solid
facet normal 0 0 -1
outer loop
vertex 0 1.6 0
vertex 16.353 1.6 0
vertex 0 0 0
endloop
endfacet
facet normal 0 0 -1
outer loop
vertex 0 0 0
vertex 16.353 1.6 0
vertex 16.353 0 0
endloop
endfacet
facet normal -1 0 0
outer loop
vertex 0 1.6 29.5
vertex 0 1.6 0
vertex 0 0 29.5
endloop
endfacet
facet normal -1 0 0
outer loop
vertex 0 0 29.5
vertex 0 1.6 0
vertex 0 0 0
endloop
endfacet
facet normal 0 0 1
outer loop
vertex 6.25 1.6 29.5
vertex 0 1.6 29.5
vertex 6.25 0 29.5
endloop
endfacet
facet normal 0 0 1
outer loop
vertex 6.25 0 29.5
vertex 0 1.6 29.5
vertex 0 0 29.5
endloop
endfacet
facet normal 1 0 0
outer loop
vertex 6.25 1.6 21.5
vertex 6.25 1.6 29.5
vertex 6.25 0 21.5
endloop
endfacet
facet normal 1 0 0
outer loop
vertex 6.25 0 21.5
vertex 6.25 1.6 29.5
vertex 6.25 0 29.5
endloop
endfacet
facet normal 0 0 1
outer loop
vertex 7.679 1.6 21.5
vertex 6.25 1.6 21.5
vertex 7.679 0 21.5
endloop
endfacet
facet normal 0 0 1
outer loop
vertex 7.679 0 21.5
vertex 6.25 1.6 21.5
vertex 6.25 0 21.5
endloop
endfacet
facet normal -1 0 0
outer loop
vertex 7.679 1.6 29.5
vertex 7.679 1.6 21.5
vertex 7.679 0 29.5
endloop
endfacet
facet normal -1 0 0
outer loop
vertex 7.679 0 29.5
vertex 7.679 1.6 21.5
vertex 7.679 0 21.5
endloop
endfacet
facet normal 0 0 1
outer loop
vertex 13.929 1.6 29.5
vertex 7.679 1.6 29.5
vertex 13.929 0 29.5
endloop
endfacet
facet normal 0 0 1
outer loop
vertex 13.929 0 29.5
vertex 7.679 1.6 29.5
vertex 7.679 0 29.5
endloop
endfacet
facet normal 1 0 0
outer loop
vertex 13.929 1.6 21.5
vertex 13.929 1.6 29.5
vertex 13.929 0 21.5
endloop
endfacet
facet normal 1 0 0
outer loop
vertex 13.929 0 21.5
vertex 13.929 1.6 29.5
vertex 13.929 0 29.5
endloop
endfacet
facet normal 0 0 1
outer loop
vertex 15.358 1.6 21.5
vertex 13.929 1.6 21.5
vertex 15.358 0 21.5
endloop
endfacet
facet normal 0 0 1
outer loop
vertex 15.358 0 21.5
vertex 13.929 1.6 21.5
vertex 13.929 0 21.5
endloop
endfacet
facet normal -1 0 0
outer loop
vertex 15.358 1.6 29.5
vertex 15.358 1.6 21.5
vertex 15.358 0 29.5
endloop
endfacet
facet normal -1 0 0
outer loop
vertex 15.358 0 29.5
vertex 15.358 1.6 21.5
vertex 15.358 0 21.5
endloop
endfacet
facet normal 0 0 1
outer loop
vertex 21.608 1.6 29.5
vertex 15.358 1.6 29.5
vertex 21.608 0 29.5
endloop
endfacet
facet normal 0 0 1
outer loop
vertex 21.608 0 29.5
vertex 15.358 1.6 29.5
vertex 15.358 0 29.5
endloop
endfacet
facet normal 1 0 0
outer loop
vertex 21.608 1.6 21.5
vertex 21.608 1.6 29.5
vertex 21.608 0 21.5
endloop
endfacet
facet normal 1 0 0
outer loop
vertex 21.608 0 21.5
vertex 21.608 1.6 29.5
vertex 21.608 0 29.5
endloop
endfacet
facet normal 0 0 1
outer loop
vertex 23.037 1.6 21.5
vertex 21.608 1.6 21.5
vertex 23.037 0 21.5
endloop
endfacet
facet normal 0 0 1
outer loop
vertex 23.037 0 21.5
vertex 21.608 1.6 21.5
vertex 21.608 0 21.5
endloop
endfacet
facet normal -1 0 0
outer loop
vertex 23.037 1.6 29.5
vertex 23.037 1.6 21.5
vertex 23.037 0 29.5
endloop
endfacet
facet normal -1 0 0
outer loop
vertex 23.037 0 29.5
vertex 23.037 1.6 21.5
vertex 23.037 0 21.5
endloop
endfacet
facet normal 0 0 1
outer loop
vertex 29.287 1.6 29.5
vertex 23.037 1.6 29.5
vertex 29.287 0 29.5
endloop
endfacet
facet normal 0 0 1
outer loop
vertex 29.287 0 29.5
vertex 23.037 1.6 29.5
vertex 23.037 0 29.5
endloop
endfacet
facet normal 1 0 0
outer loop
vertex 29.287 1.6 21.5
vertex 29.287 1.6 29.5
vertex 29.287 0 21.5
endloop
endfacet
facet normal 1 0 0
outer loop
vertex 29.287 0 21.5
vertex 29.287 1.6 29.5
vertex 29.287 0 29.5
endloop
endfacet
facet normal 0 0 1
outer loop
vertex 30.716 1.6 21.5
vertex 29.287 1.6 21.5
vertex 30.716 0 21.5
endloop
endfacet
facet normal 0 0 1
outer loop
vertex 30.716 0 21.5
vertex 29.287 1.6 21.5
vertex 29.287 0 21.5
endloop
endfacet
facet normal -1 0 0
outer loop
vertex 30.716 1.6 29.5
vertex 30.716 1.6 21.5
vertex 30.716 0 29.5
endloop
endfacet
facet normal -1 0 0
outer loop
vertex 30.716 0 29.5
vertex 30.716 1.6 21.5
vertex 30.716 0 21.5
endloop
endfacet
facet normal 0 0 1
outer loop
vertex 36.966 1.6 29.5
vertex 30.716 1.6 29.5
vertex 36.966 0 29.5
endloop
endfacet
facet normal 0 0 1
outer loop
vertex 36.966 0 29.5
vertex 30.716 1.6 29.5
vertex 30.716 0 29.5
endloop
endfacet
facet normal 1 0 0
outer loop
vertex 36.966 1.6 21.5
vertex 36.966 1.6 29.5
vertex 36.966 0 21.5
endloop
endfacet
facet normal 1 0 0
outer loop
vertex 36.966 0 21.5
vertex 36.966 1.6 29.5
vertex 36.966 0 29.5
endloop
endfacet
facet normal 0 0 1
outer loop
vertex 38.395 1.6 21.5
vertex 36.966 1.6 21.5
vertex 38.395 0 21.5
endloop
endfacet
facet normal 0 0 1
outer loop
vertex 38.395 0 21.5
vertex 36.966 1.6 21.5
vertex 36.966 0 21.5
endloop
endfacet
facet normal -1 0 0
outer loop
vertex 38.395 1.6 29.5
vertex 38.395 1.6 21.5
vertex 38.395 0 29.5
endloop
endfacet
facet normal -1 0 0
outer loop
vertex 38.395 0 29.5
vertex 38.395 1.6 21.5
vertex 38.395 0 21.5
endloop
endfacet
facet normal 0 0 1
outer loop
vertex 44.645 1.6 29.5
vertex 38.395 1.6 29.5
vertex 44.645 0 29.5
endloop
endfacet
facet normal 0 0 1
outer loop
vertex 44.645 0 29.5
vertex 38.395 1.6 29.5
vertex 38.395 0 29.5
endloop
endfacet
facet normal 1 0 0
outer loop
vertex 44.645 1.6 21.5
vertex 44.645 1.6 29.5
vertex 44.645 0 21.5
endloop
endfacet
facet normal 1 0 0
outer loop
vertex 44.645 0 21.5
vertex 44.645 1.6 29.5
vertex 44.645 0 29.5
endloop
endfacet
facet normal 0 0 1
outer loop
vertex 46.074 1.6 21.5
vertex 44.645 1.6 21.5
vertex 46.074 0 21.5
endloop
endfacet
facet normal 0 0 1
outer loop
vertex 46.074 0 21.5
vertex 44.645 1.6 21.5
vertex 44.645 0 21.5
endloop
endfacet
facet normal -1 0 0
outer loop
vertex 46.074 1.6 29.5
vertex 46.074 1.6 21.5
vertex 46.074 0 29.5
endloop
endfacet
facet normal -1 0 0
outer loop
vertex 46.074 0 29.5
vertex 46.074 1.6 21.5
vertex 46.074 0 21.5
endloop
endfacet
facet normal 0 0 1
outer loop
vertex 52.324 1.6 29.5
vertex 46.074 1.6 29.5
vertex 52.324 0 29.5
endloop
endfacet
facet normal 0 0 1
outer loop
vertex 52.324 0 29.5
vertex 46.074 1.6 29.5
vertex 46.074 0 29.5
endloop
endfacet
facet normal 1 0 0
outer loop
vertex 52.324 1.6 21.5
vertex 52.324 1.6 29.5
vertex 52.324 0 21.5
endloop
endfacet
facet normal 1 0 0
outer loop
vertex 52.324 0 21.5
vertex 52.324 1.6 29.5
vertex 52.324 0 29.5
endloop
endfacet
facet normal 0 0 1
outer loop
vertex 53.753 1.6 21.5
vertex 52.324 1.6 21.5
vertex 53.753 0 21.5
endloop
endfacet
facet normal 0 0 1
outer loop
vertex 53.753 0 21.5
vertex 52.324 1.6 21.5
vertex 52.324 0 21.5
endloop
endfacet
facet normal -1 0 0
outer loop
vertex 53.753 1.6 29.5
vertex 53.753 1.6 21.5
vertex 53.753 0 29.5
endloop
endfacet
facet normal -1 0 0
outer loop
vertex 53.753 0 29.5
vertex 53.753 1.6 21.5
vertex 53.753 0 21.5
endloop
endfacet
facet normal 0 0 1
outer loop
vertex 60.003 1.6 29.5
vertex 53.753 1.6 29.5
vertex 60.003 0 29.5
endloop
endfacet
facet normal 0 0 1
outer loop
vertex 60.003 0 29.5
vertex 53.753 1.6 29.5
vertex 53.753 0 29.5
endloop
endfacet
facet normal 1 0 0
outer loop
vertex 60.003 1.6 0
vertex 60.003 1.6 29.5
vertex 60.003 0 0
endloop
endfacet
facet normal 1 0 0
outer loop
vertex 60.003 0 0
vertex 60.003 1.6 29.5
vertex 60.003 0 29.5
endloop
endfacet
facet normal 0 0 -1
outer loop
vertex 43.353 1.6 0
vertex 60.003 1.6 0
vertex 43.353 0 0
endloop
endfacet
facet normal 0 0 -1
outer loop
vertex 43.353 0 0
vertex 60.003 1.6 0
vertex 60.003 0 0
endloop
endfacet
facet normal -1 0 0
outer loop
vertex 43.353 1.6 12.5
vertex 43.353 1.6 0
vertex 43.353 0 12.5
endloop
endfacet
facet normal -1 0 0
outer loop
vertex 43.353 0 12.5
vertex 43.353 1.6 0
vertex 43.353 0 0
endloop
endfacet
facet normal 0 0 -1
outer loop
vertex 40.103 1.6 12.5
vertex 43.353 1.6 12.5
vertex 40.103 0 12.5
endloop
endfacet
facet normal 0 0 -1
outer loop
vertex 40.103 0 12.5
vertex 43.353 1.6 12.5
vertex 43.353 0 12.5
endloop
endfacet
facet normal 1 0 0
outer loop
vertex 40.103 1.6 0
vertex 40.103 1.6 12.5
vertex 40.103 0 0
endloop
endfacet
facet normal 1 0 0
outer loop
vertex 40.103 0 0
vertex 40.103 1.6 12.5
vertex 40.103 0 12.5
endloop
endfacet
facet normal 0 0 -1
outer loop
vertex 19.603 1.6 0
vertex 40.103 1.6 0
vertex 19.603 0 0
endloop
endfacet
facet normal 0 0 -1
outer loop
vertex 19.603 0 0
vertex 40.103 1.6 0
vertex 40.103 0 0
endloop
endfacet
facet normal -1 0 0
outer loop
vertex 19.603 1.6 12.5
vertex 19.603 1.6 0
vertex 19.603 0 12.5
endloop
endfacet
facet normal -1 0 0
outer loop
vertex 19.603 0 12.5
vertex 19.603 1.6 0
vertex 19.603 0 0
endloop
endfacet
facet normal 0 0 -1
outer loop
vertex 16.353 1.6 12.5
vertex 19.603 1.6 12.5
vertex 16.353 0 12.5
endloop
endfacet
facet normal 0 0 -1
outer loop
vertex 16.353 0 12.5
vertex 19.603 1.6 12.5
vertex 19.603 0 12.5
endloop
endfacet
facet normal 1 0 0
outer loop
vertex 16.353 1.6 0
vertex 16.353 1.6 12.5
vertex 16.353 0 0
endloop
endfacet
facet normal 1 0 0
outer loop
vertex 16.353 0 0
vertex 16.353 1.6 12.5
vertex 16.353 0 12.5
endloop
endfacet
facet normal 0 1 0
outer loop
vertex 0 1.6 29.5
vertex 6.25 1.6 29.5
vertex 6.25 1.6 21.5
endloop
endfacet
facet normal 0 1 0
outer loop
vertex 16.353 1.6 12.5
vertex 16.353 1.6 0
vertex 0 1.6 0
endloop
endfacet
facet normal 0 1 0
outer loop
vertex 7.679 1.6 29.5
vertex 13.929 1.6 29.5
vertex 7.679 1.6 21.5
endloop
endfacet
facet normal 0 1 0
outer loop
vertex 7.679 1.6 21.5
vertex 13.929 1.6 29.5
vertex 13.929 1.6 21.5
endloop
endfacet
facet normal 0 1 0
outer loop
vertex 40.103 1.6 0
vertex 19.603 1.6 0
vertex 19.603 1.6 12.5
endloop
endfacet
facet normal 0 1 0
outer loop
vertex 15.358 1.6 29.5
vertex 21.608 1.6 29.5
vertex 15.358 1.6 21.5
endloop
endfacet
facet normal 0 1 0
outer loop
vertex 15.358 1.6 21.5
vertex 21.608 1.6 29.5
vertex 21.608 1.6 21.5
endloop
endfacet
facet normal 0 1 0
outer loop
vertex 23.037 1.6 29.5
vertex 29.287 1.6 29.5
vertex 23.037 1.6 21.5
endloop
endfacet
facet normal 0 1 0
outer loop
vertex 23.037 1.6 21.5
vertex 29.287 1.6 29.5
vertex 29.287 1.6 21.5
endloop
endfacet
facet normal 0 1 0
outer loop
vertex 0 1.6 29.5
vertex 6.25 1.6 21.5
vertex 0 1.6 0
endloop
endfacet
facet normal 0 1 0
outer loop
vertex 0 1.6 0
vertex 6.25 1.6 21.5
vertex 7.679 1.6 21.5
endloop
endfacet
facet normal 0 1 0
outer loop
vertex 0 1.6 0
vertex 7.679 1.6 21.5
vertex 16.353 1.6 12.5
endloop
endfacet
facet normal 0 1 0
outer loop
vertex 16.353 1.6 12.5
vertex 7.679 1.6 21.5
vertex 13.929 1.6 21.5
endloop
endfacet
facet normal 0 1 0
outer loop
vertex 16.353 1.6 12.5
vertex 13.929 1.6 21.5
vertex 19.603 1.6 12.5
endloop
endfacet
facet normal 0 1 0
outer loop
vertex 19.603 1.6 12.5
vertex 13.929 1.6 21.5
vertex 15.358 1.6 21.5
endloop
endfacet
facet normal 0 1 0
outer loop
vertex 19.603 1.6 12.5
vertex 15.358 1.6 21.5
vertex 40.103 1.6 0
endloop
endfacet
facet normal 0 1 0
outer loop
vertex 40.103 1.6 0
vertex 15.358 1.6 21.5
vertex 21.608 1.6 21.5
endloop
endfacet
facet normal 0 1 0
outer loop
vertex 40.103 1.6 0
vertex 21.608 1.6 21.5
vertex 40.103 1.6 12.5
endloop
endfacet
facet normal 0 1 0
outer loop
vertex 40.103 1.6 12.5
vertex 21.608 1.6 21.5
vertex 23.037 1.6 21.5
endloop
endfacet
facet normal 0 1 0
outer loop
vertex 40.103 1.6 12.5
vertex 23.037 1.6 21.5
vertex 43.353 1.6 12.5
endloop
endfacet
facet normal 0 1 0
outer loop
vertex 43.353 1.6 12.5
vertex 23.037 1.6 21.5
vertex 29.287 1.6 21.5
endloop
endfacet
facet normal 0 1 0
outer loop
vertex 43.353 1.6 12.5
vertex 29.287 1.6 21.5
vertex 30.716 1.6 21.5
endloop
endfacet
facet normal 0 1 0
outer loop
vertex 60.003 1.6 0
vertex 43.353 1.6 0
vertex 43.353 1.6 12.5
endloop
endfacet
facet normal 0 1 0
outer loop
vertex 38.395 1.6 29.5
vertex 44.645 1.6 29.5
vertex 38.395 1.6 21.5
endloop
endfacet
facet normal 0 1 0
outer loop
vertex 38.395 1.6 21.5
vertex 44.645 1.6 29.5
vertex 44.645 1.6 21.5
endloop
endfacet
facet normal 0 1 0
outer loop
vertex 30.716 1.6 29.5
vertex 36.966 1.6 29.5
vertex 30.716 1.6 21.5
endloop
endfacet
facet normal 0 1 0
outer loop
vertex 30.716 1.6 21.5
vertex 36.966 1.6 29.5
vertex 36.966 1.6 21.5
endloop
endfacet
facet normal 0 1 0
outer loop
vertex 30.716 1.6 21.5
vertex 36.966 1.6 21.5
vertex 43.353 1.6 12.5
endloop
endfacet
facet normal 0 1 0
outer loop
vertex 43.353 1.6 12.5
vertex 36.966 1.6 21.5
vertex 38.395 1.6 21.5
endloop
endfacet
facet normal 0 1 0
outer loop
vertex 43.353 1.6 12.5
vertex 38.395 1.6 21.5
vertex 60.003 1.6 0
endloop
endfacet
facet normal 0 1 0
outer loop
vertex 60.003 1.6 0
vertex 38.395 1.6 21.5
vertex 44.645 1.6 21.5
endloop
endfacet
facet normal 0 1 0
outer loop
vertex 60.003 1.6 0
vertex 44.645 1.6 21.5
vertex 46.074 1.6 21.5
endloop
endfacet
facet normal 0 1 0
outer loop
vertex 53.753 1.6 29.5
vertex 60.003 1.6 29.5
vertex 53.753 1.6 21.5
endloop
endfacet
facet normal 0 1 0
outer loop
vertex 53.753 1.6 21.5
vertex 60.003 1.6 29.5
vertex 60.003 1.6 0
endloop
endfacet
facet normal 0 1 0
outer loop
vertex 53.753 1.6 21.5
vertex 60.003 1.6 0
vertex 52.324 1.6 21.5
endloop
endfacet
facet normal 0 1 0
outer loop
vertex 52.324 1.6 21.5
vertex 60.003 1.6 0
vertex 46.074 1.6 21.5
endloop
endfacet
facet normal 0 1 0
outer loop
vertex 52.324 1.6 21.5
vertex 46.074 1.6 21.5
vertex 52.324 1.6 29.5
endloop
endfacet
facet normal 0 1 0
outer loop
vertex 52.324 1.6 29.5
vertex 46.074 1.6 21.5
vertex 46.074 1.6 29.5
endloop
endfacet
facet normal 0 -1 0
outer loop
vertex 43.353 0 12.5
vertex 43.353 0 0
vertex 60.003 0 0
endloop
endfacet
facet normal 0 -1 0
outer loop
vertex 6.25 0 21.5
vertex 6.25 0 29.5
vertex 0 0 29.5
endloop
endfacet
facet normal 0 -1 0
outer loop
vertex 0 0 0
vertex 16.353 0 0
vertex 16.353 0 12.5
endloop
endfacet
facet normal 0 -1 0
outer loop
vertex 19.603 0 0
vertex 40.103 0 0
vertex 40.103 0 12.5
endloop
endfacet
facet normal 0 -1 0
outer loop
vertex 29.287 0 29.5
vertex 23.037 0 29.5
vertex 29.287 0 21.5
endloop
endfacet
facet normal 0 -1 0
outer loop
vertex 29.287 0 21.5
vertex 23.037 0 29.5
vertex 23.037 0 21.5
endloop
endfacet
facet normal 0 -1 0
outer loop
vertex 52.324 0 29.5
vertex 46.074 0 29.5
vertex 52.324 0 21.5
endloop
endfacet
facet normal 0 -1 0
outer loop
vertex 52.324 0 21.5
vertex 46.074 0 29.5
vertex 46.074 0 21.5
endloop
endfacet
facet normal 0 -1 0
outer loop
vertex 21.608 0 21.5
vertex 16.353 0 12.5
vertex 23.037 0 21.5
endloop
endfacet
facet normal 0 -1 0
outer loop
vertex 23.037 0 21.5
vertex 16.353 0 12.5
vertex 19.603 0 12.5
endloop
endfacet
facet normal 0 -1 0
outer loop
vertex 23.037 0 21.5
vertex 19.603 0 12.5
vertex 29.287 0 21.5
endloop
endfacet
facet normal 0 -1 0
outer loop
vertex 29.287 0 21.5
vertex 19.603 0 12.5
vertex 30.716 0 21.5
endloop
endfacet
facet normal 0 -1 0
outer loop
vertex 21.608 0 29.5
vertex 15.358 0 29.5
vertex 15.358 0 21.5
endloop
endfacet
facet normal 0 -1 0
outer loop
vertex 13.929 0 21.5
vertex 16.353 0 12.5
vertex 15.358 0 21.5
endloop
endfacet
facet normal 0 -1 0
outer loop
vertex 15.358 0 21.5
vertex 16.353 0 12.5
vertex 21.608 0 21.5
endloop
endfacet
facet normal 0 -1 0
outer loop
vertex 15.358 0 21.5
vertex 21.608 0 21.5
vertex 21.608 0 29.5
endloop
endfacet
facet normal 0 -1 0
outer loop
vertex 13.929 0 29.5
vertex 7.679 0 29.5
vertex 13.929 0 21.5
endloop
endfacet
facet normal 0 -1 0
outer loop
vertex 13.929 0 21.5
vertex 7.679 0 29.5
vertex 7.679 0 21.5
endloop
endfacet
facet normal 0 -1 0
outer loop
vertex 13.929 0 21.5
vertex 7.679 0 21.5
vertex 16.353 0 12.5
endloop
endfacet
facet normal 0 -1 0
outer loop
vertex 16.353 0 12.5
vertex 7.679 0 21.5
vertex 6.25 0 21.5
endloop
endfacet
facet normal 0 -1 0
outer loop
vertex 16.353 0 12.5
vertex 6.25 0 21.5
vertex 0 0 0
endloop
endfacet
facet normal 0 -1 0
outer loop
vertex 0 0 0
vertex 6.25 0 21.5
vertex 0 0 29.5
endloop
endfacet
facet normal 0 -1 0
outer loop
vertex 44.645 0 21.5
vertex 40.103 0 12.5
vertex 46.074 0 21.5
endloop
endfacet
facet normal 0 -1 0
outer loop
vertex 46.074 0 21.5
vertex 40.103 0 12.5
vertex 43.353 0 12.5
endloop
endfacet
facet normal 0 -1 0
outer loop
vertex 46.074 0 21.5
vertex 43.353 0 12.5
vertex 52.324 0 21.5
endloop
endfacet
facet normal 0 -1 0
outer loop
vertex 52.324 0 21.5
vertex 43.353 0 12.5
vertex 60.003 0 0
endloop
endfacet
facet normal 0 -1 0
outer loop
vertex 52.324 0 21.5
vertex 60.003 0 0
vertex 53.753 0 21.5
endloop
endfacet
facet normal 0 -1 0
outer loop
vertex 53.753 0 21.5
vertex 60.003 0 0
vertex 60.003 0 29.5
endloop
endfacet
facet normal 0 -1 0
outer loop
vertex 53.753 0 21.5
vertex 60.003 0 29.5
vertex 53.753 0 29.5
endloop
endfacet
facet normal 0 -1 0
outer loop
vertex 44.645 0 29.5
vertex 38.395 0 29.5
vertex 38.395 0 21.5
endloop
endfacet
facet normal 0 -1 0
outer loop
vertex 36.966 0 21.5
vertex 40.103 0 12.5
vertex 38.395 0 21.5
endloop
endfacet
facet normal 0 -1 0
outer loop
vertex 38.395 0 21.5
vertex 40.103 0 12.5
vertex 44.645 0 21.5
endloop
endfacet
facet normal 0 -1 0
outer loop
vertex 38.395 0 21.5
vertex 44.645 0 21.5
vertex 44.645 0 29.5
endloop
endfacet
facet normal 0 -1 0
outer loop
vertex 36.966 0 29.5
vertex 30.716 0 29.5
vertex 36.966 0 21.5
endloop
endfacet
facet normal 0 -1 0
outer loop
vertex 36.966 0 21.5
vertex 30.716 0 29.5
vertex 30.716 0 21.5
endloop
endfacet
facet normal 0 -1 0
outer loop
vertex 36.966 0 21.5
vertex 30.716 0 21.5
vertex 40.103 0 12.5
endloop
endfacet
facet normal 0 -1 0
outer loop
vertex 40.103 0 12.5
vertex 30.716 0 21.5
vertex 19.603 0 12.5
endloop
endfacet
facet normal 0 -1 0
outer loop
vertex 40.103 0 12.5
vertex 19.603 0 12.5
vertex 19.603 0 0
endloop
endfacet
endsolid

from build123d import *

# Parameters (mm, degrees)
BOSS_EXTRUDE1_DEPTH = 1.6


with BuildPart() as part:
    # Sketch1 → Boss-Extrude1 (new body)
    with BuildSketch(Plane(origin=(0, 0, 0), x_dir=(1, 0, 0), z_dir=(0, 1, 0))):
        Polygon((0, 0), (0, -29.5), (6.25, -29.5), (6.25, -21.5), (7.679, -21.5), (7.679, -29.5), (13.929, -29.5), (13.929, -21.5), (15.358, -21.5), (15.358, -29.5), (21.608, -29.5), (21.608, -21.5), (23.037, -21.5), (23.037, -29.5), (29.287, -29.5), (29.287, -21.5), (30.716, -21.5), (30.716, -29.5), (36.966, -29.5), (36.966, -21.5), (38.395, -21.5), (38.395, -29.5), (44.645, -29.5), (44.645, -21.5), (46.074, -21.5), (46.074, -29.5), (52.324, -29.5), (52.324, -21.5), (53.753, -21.5), (53.753, -29.5), (60.003, -29.5), (60.003, 0), (43.353, 0), (43.353, -12.5), (40.103, -12.5), (40.103, 0), (19.603, 0), (19.603, -12.5), (16.353, -12.5), (16.353, 0), align=None)
    extrude(amount=BOSS_EXTRUDE1_DEPTH)


solid = part.part
